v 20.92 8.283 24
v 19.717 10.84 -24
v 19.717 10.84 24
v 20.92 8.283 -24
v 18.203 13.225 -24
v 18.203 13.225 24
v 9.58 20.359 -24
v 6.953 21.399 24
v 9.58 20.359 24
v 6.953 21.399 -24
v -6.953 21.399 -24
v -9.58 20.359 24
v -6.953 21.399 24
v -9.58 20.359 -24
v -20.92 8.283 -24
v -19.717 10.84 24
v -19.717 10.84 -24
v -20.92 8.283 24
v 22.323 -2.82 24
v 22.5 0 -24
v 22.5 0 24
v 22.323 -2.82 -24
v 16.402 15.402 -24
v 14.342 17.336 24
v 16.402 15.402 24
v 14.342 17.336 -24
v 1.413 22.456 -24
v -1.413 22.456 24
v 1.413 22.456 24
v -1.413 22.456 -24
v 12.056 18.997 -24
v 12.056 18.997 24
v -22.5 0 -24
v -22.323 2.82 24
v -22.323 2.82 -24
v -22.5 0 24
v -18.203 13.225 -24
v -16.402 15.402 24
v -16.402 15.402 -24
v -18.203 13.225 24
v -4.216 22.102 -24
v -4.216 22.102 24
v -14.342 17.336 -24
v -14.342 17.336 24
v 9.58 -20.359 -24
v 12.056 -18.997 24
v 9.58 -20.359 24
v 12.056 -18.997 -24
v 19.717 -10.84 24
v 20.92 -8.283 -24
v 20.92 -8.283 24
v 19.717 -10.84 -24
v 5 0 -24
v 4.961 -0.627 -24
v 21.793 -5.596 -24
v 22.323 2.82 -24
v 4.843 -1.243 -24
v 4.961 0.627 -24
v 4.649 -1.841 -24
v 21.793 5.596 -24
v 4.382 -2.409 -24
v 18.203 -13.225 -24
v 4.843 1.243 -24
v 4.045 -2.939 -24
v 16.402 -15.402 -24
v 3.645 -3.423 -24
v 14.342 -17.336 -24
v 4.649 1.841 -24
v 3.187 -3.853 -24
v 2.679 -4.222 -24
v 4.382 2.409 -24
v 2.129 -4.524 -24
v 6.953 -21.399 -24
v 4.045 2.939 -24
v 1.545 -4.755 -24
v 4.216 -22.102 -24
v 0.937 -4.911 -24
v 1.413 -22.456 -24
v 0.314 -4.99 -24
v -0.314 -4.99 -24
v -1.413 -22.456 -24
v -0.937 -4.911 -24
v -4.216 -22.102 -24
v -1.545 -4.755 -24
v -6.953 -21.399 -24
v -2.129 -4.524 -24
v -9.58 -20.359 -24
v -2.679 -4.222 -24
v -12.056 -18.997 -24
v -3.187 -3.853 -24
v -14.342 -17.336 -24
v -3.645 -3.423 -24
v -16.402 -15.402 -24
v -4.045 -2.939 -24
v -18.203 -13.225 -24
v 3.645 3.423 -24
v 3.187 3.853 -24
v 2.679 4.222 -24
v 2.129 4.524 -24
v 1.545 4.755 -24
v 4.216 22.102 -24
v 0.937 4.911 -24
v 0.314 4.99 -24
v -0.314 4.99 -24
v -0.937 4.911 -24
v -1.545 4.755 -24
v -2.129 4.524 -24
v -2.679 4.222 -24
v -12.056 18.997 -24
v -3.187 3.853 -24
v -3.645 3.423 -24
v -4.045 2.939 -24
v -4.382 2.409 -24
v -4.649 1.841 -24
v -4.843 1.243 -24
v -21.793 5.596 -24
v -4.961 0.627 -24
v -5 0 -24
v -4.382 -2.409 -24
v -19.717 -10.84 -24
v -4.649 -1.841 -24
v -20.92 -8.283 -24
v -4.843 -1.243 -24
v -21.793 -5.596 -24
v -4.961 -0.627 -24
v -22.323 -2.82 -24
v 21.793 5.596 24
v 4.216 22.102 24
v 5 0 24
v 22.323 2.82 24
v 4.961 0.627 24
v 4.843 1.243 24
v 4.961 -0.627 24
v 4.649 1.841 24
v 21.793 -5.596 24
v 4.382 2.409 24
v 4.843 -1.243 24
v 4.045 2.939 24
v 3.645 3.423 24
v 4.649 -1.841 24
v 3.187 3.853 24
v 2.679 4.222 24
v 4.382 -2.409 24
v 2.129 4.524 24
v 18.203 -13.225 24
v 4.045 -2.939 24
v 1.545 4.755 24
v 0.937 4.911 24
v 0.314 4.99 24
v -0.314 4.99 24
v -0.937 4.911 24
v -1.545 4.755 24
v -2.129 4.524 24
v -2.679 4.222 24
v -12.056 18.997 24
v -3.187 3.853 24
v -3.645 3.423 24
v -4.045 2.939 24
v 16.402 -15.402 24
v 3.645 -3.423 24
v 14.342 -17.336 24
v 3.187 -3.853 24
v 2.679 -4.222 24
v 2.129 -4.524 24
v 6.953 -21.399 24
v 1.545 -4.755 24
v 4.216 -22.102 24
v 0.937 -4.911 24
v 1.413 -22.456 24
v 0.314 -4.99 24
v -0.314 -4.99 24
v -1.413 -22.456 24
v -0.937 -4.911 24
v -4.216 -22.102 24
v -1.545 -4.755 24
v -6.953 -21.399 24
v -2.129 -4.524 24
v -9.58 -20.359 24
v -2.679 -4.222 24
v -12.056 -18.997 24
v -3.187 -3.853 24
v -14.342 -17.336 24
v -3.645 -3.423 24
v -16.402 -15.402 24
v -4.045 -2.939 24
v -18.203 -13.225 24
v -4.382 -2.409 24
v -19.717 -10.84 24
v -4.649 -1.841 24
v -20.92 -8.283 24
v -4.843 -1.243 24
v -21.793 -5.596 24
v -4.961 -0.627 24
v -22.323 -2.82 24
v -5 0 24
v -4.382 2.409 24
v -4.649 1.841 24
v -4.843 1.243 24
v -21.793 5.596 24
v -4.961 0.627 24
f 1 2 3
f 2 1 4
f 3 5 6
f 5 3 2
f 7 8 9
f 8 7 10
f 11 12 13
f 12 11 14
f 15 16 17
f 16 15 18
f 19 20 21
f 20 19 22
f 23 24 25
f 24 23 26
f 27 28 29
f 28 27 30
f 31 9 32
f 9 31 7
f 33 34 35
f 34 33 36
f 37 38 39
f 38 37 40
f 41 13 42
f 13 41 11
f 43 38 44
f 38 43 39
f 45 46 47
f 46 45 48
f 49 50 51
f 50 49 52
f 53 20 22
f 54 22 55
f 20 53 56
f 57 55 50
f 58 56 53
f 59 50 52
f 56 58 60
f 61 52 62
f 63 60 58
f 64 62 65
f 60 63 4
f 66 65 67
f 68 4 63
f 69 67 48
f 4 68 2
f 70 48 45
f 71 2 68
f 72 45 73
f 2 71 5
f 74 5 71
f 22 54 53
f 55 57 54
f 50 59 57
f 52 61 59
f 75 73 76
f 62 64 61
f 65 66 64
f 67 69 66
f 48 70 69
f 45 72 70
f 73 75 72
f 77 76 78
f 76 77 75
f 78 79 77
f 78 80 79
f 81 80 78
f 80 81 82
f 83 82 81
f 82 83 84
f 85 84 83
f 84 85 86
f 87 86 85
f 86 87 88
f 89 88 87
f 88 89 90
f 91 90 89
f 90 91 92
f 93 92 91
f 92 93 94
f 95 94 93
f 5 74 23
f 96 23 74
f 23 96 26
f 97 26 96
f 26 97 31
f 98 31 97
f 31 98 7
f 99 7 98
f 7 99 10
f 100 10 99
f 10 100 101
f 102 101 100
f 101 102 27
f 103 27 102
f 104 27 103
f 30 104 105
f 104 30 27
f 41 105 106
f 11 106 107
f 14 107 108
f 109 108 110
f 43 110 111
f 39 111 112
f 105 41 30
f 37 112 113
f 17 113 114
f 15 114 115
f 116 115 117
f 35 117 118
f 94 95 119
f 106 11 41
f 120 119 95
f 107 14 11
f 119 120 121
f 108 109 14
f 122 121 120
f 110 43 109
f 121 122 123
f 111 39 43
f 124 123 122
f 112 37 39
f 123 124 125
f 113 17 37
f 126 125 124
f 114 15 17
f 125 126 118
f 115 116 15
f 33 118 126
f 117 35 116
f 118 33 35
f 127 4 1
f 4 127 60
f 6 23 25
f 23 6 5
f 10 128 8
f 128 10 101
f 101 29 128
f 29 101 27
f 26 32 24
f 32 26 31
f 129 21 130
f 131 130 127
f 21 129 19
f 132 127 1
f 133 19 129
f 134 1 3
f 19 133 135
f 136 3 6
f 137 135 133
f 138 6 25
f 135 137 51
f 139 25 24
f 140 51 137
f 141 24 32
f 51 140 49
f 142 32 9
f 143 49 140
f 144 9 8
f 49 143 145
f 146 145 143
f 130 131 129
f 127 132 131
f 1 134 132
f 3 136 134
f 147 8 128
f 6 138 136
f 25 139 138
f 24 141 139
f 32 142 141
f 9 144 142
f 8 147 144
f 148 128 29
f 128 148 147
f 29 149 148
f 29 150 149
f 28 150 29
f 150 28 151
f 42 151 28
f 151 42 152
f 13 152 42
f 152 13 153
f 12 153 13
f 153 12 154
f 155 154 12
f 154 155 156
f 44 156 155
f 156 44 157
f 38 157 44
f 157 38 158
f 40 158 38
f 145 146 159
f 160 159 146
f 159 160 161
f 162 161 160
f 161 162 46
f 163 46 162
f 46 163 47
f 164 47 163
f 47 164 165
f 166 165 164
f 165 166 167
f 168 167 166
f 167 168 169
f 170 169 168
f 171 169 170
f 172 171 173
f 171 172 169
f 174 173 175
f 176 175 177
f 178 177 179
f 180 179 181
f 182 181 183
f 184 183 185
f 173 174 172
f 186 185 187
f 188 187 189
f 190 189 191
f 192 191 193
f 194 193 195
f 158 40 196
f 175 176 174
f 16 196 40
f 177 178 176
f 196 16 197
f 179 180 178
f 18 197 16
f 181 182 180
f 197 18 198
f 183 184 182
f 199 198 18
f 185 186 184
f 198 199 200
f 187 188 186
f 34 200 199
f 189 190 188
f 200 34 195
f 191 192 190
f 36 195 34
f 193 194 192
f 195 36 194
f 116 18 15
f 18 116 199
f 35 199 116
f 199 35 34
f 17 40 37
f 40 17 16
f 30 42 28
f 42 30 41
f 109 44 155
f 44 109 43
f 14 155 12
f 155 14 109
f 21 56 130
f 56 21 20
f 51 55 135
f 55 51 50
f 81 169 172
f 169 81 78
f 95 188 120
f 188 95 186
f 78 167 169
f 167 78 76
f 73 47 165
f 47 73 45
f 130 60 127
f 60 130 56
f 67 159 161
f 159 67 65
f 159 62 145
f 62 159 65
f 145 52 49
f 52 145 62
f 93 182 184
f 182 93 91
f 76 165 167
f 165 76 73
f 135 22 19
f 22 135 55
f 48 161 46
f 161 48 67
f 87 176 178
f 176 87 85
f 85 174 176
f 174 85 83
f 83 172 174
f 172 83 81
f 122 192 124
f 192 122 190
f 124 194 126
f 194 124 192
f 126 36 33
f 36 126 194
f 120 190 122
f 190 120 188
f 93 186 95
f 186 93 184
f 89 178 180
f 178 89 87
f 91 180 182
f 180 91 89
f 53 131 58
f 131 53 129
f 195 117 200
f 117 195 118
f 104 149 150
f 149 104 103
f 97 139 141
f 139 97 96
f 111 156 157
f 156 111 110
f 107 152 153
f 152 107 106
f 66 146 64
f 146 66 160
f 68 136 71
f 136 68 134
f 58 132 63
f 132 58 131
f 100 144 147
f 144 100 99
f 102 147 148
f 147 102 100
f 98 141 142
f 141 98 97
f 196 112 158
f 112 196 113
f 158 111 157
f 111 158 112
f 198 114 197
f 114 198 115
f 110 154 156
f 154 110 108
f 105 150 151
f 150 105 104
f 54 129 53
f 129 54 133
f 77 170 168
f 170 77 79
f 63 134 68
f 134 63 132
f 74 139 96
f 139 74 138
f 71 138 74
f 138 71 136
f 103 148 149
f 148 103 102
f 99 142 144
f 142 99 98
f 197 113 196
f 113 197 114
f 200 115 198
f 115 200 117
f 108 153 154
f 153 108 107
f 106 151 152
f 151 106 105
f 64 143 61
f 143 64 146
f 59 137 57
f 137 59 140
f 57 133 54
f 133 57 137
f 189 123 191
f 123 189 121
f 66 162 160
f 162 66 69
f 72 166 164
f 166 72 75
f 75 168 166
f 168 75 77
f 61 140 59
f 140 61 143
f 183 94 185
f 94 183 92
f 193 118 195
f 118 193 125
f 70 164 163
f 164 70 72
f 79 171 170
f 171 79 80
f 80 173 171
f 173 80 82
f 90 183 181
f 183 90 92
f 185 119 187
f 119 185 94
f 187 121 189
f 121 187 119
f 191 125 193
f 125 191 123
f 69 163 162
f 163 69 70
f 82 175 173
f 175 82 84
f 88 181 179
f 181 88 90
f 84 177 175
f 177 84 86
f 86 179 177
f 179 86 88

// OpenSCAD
$fn = 50;


difference() {
	union() {
		translate(v = [0, 0, -24.0000000000]) {
			cylinder(h = 48, r = 22.5000000000);
		}
	}
	union() {
		translate(v = [0, 0, -100.0000000000]) {
			cylinder(h = 200, r = 5);
		}
	}
}
